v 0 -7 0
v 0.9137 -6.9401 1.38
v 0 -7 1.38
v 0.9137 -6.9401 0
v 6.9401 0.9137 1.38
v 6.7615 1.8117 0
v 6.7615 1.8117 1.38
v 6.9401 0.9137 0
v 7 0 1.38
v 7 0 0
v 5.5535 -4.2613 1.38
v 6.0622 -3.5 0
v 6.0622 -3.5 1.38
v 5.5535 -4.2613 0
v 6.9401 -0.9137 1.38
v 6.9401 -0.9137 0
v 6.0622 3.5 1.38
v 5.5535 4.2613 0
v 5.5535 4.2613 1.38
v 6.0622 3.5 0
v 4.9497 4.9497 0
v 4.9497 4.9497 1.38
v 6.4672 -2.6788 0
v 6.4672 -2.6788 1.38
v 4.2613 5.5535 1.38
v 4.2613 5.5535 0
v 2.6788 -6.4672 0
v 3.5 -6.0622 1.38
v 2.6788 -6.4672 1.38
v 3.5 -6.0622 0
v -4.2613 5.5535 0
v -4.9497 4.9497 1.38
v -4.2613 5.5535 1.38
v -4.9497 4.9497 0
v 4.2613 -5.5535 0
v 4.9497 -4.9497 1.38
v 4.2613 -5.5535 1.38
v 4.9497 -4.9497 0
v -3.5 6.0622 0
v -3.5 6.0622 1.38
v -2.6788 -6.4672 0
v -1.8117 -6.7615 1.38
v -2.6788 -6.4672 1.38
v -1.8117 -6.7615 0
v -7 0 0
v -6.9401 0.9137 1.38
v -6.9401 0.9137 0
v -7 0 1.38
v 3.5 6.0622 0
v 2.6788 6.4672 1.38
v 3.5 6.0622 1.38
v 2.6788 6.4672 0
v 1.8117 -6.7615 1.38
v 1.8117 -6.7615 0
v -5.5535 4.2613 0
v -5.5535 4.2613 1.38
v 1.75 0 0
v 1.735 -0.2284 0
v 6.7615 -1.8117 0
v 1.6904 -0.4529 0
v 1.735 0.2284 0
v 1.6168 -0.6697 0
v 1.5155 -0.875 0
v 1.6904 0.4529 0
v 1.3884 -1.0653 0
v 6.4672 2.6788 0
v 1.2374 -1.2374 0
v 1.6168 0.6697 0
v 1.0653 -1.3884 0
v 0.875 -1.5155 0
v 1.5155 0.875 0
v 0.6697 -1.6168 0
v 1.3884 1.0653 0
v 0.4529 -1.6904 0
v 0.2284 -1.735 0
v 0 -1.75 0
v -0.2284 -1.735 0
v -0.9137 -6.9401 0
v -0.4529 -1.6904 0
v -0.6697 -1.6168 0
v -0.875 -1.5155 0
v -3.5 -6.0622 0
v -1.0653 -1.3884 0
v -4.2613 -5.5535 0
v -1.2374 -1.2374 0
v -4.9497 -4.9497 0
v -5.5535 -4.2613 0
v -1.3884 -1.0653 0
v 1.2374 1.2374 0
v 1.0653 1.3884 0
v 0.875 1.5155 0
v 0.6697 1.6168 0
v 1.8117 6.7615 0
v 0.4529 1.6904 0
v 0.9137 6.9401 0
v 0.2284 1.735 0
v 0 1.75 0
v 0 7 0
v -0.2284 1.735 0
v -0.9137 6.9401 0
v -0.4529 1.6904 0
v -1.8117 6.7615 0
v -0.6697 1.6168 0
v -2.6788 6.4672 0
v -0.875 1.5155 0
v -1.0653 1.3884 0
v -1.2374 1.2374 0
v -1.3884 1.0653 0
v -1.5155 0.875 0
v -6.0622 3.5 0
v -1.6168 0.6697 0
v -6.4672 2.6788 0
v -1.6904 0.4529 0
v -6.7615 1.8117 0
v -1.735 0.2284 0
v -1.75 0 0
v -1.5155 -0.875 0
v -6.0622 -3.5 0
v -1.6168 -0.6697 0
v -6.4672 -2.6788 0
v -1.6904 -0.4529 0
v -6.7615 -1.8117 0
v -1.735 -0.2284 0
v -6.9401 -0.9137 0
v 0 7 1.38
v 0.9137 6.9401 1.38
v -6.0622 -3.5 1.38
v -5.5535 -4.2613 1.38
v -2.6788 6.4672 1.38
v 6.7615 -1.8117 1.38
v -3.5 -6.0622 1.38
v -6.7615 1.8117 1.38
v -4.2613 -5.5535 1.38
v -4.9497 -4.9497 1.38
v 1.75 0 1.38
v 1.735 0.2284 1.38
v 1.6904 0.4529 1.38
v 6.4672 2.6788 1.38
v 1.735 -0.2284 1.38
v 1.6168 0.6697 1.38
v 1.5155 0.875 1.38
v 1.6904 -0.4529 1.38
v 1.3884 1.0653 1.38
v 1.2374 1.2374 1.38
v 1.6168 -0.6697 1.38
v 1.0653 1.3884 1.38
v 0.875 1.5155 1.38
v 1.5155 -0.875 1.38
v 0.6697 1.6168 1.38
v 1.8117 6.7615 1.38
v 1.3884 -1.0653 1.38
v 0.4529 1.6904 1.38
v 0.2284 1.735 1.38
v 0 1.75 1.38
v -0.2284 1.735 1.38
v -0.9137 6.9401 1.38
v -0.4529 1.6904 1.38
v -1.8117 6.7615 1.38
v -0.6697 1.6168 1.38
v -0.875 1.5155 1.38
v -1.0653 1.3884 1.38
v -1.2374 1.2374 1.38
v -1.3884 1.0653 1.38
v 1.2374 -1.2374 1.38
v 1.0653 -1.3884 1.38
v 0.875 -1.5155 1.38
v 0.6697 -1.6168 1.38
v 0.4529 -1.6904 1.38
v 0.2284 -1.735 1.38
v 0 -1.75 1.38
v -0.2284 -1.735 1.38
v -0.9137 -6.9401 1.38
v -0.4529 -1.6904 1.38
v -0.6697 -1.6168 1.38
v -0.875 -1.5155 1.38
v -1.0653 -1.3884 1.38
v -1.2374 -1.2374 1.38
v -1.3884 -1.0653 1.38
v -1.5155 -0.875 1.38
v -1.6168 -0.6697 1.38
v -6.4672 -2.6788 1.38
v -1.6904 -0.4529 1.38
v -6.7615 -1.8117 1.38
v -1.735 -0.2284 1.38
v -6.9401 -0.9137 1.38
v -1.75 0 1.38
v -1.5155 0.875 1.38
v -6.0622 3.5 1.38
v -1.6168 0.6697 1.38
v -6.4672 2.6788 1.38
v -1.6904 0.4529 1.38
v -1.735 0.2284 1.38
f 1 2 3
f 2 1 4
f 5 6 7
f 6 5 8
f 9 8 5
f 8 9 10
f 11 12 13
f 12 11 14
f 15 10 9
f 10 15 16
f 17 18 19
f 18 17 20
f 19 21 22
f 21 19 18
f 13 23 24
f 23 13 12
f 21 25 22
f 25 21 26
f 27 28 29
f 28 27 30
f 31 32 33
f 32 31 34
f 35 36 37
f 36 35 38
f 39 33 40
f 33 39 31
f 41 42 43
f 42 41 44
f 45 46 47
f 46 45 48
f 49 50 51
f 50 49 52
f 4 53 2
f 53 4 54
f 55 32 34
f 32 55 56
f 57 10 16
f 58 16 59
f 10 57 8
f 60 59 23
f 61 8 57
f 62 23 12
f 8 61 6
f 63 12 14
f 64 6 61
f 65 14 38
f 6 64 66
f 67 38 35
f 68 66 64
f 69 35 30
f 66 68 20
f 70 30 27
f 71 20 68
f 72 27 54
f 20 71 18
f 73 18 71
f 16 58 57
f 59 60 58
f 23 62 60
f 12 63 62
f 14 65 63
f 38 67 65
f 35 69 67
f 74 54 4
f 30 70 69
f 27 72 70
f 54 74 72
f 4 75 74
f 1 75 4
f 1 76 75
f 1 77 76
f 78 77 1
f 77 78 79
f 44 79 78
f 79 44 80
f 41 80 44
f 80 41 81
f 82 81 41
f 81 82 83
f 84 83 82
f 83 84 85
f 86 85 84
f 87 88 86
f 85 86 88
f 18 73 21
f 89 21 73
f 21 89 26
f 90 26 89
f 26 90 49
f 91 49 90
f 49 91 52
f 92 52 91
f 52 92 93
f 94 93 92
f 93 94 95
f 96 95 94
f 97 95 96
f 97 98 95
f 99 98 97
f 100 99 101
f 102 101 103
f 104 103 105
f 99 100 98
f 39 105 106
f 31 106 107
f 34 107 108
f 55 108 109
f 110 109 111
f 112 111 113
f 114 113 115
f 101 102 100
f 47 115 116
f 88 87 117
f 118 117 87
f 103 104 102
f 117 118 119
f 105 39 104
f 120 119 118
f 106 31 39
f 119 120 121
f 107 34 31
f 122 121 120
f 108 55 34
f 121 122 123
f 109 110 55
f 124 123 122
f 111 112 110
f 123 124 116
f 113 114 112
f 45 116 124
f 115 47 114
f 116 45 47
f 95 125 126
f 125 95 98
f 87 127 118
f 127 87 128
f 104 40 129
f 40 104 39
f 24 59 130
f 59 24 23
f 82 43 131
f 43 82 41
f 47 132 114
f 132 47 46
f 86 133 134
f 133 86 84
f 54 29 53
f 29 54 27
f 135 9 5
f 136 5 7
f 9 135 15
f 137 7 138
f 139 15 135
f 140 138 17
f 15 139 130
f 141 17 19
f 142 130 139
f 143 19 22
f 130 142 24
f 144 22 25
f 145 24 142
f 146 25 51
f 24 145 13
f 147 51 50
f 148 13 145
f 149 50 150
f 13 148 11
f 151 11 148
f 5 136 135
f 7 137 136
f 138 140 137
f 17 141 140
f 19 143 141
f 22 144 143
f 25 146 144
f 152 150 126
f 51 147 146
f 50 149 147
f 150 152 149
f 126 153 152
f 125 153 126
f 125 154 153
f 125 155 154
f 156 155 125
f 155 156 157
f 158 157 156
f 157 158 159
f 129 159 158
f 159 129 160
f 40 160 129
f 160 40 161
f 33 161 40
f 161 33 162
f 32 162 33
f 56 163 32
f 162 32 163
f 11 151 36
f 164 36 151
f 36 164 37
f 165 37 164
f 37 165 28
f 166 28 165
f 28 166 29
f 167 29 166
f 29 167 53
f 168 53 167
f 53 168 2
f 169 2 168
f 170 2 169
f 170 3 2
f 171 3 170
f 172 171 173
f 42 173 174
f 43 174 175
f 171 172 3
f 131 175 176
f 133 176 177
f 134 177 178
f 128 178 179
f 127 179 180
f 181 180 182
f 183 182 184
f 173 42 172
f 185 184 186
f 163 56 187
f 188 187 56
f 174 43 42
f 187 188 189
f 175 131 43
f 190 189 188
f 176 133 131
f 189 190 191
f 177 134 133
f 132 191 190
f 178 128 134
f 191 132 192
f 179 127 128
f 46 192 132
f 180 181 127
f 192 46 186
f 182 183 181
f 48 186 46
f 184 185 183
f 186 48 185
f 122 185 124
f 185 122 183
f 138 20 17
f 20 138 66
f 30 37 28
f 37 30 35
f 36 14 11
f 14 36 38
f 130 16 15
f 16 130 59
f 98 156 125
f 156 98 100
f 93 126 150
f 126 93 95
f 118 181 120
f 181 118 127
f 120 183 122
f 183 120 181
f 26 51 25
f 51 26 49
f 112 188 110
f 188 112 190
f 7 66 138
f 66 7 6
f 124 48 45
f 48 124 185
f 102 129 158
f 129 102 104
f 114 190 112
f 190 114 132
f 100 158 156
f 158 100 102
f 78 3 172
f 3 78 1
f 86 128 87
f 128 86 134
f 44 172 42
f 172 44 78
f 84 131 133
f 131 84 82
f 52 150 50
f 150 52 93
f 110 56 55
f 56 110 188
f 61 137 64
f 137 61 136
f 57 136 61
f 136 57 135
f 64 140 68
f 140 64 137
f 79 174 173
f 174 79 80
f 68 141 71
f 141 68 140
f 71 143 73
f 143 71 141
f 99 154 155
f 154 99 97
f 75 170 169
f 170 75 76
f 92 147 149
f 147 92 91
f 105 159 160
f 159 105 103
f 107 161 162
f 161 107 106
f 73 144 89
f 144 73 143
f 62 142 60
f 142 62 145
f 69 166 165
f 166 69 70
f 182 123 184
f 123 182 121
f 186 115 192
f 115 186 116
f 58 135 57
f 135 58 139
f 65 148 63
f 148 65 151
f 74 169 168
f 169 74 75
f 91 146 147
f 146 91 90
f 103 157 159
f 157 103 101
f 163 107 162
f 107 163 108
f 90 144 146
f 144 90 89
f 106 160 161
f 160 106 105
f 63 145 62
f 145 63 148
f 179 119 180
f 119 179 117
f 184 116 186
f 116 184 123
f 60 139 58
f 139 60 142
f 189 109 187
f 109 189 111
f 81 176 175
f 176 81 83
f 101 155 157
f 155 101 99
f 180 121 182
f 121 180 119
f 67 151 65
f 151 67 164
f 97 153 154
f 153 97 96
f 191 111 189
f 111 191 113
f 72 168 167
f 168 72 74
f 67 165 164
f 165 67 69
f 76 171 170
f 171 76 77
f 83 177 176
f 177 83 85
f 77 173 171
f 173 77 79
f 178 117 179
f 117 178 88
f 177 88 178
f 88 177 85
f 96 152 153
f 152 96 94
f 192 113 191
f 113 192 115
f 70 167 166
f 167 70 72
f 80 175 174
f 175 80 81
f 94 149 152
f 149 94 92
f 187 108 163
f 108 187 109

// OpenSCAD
// file: parameters.scad
// =============================================================================
// Gen-W Triple-rotor dual-stator sandwich — WOUND-AWARE (HARD GATE)
// RotorA | StatorA | RotorMid | StatorB | RotorB
// Magnets: outer 5+5 Ø20, mid 6 Ø20 (3/face); Ø5 Halbach 16+16+16
// =============================================================================

wire_awg            = 26;
wire_od             = 0.45;
turns               = 110;      // 18 pancakes × 110 t ≈ 198 m @ mean 0.10 m
fill                = 0.70;
layers_per_face     = 2;
wind_build_axial    = layers_per_face * wire_od * fill;   // 0.63
wind_build_radial   = 2.8 * wire_od * fill;               // 0.882

coil_id_r           = 23.0;
coil_od_r           = 56.0;
span_deg            = 34.0;     // 9 stations × 40°
former_web          = 2.0;
flange_t            = 0.75;
wall                = 1.2;
slot_w              = 2.4;
mount_hole          = 3.5;
tab_len             = 7.0;

former_bare_h       = former_web + 2 * flange_t;            // 3.5
coil_envelope_h     = former_bare_h + 2 * wind_build_axial; // 4.76

// Each gap: magnet ↔ wound ≥ 0.75
run_clear           = 0.75;
gap_spacer_h        = run_clear + wind_build_axial;         // 1.38
// Outer gap m2m (outer rotor ↔ mid rotor face through one stator):
m2m_outer           = coil_envelope_h + 2 * run_clear;      // 6.26
m2m_inner           = m2m_outer;                            // symmetric gaps

coil_stations       = 9;        // per stator; ×2 = 18
bay_r_in            = coil_id_r - 2.0 - wind_build_radial;
bay_r_out           = coil_od_r + 2.0 + wind_build_radial;
bay_span            = span_deg + 4.0;
bay_offset          = 2.0;
bay_depth           = former_bare_h + wind_build_axial;     // seat bare+back wind
stator_back_web     = 2.0;
stator_thick        = bay_depth + stator_back_web;          // ~6.13
stator_od           = 156.0;
shaft_clear_stator  = 40.0;
coil_mount_r        = 30.0;

// Outer rotors: 5×Ø20 + 16×Ø5 each; Mid: 3+3 Ø20 + 16 Ø5 (both faces)
large_pocket_d      = 20.3;
small_pocket_d      = 5.3;
pocket_h            = 5.2;
outer_large_n       = 5;
mid_large_n_face    = 3;        // 3 per face = 6 mid
R_large             = 52.0;
R_small_inner       = 40.0;
R_small_mid         = 52.0;
R_small_outer       = 64.0;
carrier_od          = 152.0;
outer_carrier_thick = 7.5;
mid_carrier_thick   = 12.0;     // dual face 5.2+1.6+5.2
hub_h               = 10.0;
hub_od              = 30.0;

shaft_bore          = 8.35;
bearing_d           = 21.85;
bearing_h           = 7.2;
m3_clear            = 3.5;
bolt_r_inner        = 36.0;
bolt_n_inner        = 6;
flange_bolt_r       = 72.0;
flange_bolt_n       = 6;
brace_r             = 68.0;
brace_d             = 4.3;
brace_n             = 4;

spacer_pad_od       = 14.0;
spacer_pad_id       = m3_clear;
endbell_od          = 156.0;
endbell_thick       = 8.0;
endbell_shaft_clear = 10.0;

$fn = 64;
// main file
// Gen-W gap spacer — h = run_clear + wind_build_axial; print ×18
include <parameters.scad>;
$fn = 48;
difference() {
    cylinder(d=spacer_pad_od, h=gap_spacer_h);
    translate([0, 0, -0.1]) cylinder(d=spacer_pad_id, h=gap_spacer_h + 0.2);
}
